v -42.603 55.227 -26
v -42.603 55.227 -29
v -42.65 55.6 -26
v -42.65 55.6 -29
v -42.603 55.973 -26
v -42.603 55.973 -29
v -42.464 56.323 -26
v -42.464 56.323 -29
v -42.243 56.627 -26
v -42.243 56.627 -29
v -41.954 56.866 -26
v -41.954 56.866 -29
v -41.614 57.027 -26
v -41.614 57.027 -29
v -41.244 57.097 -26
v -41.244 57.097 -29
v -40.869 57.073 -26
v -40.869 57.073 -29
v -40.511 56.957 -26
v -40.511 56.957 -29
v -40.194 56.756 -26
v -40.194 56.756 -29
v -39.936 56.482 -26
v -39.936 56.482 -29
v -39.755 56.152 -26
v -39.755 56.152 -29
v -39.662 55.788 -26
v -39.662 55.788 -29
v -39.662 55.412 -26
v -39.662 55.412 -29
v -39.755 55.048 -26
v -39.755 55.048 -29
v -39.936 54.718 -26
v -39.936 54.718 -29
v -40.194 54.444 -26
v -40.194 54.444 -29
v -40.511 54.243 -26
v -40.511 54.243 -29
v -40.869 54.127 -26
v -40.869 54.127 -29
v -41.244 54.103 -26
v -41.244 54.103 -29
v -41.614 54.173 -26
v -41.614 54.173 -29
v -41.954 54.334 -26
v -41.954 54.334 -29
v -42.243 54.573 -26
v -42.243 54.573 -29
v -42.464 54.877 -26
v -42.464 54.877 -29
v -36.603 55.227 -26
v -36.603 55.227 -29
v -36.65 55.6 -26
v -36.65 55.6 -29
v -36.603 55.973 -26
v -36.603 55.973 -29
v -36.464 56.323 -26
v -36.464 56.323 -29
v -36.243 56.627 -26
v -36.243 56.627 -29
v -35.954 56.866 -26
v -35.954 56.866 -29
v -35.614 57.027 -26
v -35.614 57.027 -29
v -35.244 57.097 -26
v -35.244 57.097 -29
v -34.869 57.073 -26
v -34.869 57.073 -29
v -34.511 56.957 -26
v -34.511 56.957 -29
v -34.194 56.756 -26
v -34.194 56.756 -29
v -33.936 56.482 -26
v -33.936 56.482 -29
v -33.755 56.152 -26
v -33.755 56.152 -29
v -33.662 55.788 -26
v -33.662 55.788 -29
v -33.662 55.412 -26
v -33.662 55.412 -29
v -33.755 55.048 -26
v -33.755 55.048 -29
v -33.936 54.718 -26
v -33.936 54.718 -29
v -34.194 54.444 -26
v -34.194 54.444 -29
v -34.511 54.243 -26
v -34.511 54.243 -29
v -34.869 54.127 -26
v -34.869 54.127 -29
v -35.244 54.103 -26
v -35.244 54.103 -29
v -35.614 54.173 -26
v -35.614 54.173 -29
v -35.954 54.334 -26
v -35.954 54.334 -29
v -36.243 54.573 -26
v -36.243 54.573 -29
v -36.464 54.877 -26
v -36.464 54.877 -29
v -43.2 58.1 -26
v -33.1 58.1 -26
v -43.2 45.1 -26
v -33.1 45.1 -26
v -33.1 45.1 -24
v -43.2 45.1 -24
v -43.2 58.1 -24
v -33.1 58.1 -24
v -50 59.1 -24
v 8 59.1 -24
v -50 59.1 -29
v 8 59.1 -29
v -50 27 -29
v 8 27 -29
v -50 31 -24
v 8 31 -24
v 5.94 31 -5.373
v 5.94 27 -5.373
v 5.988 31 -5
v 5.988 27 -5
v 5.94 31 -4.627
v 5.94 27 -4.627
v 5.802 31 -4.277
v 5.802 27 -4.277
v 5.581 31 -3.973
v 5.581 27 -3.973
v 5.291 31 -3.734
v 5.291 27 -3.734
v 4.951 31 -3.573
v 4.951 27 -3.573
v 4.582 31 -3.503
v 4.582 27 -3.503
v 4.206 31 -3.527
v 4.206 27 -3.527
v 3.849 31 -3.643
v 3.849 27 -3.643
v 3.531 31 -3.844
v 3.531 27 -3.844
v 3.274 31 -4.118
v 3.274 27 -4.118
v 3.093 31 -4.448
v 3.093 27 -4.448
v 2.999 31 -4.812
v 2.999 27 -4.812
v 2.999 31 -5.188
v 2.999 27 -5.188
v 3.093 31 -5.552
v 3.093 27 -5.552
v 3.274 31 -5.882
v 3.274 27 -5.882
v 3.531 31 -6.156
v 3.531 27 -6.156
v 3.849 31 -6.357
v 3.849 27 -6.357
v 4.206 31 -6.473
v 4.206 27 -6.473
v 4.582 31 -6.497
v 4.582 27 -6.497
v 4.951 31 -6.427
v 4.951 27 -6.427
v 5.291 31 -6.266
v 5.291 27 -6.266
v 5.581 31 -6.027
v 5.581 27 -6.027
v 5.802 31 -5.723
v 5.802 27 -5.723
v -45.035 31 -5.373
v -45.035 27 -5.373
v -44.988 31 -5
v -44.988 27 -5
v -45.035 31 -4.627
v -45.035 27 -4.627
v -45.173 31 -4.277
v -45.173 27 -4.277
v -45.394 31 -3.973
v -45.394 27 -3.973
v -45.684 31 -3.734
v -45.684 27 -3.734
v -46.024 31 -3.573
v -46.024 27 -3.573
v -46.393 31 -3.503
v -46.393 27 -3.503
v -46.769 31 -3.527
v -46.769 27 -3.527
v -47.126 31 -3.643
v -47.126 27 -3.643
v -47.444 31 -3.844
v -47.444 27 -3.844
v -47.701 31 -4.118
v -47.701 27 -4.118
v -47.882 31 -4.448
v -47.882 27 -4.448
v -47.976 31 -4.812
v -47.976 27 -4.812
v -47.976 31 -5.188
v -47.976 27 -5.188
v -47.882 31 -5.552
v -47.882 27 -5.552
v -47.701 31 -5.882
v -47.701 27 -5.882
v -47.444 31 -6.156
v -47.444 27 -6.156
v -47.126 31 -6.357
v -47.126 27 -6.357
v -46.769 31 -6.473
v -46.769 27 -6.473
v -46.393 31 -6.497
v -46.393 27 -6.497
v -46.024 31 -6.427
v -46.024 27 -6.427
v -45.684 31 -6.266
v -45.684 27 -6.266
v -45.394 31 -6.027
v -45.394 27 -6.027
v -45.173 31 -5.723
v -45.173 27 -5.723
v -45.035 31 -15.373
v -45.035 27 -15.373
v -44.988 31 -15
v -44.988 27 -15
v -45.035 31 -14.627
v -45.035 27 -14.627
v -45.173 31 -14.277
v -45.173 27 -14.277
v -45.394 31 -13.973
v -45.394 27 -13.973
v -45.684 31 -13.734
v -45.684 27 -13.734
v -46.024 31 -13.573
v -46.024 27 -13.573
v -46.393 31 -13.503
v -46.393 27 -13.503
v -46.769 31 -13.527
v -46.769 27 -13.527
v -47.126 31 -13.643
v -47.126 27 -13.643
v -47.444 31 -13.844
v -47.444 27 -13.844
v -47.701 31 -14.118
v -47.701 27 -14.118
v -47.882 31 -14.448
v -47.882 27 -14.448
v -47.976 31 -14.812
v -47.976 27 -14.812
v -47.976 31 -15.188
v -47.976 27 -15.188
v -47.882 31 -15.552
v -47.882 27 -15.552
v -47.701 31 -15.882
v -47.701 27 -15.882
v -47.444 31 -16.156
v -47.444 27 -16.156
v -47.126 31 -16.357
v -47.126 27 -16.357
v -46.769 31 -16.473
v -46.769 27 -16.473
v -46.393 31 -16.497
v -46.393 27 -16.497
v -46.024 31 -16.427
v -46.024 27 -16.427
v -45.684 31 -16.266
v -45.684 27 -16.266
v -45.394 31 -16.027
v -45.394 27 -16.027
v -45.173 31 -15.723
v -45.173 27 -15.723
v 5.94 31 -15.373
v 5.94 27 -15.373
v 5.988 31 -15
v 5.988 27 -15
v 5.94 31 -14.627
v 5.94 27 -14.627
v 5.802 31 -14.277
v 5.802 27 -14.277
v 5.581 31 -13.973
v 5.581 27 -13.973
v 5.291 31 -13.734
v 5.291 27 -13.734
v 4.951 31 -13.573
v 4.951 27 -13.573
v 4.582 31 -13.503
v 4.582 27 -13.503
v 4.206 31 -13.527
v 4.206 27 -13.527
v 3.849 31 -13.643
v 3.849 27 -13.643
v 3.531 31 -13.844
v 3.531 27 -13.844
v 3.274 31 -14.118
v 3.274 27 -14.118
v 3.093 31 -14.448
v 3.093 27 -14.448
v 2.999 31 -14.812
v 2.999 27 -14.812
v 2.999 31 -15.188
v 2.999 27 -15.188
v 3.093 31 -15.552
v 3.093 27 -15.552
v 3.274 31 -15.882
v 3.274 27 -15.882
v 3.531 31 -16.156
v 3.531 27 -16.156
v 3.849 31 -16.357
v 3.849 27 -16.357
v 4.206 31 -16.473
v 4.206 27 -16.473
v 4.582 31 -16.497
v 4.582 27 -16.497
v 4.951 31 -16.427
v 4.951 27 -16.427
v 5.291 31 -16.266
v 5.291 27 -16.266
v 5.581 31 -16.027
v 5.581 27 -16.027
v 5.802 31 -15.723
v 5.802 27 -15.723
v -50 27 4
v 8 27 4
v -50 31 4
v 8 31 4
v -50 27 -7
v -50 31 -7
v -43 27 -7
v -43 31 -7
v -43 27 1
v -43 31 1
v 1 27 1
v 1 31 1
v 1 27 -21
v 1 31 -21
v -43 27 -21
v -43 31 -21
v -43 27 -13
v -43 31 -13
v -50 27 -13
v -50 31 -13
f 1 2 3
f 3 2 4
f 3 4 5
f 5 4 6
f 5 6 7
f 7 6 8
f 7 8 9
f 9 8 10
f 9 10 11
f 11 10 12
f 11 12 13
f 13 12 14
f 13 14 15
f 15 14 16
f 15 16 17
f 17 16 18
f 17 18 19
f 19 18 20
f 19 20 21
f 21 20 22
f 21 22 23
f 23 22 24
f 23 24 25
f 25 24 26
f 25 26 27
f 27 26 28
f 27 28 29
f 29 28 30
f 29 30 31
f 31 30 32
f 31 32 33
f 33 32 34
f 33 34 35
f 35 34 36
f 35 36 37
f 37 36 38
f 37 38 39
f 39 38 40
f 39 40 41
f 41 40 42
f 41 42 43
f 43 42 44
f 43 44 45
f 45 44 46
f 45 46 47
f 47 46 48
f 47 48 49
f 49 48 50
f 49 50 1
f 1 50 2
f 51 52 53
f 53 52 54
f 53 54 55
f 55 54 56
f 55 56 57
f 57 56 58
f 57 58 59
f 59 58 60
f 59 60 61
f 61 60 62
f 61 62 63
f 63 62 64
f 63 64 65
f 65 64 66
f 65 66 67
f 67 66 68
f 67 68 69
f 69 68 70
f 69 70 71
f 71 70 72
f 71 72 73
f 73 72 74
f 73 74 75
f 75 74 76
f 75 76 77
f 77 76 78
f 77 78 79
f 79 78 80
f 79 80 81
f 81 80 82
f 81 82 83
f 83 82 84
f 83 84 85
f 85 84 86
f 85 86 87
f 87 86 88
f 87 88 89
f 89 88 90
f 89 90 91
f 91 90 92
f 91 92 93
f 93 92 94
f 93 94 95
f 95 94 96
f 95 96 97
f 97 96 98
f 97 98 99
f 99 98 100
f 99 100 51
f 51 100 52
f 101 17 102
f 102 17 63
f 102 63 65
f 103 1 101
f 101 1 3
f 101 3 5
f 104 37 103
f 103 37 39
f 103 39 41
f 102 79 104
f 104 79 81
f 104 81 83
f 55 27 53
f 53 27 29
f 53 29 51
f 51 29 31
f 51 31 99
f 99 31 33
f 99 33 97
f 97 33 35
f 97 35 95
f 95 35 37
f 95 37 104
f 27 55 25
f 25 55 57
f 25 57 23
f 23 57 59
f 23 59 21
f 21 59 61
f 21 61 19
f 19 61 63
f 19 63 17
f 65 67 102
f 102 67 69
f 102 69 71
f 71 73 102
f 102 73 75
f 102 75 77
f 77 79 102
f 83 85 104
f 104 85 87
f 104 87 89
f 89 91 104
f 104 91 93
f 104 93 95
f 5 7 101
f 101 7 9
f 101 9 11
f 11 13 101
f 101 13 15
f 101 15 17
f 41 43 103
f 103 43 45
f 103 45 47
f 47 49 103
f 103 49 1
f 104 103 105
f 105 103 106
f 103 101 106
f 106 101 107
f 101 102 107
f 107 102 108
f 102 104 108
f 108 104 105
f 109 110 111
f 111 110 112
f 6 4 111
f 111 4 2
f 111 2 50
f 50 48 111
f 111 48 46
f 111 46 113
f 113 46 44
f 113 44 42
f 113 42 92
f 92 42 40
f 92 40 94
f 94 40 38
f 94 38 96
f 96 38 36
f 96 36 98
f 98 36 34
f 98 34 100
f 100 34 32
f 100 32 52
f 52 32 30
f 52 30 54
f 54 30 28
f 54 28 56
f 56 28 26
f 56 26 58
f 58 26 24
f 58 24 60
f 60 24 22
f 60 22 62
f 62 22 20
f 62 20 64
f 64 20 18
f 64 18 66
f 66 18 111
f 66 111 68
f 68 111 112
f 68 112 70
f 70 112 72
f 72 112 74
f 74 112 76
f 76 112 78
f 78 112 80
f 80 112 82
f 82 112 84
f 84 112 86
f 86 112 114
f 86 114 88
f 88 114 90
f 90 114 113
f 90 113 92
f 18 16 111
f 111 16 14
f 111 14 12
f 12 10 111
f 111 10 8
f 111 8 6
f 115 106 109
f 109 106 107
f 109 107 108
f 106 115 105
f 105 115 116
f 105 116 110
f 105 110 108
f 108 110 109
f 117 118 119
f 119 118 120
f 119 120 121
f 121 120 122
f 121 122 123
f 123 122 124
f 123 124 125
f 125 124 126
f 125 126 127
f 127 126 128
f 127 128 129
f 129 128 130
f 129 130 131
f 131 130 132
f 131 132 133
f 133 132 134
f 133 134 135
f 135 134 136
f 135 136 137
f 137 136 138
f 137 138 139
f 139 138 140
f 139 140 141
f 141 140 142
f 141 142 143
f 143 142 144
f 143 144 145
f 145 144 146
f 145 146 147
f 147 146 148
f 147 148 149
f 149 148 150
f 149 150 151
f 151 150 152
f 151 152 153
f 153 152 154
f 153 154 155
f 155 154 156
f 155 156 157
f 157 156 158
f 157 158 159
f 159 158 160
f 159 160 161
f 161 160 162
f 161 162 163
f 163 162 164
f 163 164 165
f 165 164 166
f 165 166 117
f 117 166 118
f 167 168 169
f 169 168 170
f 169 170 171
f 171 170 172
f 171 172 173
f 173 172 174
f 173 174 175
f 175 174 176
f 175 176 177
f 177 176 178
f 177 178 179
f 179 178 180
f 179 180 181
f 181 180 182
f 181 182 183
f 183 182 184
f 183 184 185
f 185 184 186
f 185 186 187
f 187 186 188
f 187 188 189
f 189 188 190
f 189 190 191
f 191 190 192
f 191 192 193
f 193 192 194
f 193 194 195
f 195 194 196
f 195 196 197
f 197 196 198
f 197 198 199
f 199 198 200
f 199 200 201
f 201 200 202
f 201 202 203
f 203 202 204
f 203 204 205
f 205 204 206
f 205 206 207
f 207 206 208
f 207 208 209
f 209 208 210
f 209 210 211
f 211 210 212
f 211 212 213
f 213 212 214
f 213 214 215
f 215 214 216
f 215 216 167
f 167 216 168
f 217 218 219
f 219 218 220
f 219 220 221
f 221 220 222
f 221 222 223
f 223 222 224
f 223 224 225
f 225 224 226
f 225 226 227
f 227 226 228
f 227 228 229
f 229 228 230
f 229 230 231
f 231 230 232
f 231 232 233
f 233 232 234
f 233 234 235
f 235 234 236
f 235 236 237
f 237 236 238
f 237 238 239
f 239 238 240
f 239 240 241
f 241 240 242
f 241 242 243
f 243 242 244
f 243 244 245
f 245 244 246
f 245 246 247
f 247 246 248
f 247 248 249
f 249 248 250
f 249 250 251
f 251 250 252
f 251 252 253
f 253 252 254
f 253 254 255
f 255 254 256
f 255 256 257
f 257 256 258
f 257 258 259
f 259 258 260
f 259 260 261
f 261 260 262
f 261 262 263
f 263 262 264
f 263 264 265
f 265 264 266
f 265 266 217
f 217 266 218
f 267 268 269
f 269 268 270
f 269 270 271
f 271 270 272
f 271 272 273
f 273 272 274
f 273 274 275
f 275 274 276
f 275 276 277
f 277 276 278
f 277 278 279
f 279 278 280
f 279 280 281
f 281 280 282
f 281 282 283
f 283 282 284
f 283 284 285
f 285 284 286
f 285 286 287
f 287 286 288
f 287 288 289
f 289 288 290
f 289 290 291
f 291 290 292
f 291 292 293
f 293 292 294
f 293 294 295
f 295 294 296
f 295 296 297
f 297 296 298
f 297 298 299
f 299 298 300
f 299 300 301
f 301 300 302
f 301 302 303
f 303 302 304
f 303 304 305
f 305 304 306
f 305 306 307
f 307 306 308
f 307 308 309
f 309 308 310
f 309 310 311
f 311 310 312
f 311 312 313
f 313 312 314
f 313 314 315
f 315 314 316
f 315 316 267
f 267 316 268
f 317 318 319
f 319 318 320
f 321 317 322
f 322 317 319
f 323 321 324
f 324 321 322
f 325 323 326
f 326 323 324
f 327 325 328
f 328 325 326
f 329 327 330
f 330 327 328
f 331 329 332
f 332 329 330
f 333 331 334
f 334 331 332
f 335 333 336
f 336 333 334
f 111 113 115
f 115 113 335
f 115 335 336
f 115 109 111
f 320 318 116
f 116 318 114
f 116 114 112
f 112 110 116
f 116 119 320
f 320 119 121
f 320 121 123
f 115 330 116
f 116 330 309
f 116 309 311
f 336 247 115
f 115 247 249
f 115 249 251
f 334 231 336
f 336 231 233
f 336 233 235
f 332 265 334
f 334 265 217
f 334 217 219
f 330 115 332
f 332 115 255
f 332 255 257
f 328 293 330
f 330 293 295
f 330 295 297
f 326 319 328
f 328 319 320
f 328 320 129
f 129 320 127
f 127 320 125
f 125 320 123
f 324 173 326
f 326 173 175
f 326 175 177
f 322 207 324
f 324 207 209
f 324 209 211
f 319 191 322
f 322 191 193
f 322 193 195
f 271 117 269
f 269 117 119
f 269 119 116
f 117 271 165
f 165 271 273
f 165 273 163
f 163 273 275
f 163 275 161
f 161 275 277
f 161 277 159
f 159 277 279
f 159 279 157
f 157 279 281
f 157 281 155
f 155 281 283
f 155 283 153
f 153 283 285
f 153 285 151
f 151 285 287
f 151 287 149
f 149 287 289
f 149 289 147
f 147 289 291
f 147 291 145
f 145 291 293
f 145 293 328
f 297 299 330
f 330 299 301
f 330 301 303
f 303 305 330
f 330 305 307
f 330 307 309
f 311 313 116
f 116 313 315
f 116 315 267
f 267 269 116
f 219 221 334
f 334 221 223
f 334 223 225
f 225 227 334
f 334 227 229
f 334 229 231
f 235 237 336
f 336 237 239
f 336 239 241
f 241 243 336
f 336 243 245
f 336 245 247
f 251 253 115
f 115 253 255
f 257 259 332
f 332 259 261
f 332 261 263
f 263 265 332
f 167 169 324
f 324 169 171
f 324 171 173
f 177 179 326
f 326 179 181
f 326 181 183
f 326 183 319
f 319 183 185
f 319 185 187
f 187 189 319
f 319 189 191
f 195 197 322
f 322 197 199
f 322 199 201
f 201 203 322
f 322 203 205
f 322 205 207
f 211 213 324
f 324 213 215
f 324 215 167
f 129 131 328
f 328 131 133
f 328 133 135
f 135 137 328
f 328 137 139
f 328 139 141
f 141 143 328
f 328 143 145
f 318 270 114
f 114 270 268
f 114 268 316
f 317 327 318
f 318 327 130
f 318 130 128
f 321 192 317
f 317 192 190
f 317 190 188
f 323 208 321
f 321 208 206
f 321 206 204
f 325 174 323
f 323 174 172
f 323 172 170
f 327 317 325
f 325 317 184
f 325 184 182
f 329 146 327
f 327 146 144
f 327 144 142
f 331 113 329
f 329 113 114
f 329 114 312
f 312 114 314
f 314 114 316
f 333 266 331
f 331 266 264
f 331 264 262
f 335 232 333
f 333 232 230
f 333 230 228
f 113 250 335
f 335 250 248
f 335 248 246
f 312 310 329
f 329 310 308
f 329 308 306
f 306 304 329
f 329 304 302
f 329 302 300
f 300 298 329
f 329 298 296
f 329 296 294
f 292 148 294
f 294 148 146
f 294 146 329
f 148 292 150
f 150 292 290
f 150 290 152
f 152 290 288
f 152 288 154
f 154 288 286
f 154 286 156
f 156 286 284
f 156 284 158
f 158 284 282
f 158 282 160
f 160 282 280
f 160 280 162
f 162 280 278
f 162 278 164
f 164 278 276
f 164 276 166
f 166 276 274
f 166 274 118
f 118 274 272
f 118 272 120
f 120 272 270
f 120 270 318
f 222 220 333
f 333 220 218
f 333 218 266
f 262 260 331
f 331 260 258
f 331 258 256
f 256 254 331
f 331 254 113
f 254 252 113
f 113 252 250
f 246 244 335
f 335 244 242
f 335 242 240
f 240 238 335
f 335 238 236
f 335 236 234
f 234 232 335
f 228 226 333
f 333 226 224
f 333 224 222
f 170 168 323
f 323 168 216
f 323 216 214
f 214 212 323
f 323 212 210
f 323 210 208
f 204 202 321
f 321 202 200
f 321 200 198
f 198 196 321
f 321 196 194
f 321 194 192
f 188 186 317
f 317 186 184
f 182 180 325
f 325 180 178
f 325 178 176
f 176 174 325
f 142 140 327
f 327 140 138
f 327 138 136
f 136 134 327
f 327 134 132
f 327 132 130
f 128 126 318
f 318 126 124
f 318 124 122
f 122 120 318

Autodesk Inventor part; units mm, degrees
ref_plane "YZ Plane" through (0, 0, 0) normal (1, 0, 0) x (0, 1, 0)
ref_plane "XZ Plane" through (0, 0, 0) normal (0, 1, 0) x (-1, 0, 0)
ref_plane "XY Plane" through (0, 0, 0) normal (0, 0, 1) x (1, 0, 0)
ref_plane "Plano de trabajo1" through (0, 27, 0) normal (0, 1, 0) x (1, 0, 0)
sketch "Boceto2" plane through (0, 27, 0) normal (0, 1, 0) x (1, 0, 0)
  line L0 (0, 10) -> (0, 15)
  line L1 (0, 15) -> (11.8906, 15)
  line L2 (0, 10) -> (0, 5)
  line L3 (0, 5) -> (15.0689, 5)
  line L4 (0, 5) -> (7, 5)
  line L5 (7, 5) -> (7, 15)
  line L6 (6.4875, 15) -> (4.4875, 15)
  circle A0 centre (4.4875, 15) radius 1.5
  circle A1 centre (4.4875, 5) radius 1.5
  line L7 (-42, 6) -> (-42, 0) projected
  line L8 (0, 0) -> (-42, 0)
  line L9 (-42, 0) -> (0, 0) projected
  line L10 (-21, 0) -> (-21, 36.5425)
  circle A2 centre (-46.4875, 15) radius 1.5
  circle A3 centre (-46.4875, 5) radius 1.5
  line L11 (0, 0) -> (1, 0)
  line L12 (1, 0) -> (8, 0)
  line L13 (8, 0) -> (8, 20)
  line L14 (8, 20) -> (1, 20)
  line L15 (1, 20) -> (1, 0)
  line L16 (-42, 10) -> (-42, 15)
  line L17 (-42, 15) -> (-53.8906, 15)
  line L18 (-42, 10) -> (-42, 5)
  line L19 (-42, 5) -> (-49, 5)
  line L20 (-49, 5) -> (-49, 15)
  line L21 (-48.4875, 15) -> (-46.4875, 15)
  circle A4 centre (-46.4875, 15) radius 1.5
  circle A5 centre (-46.4875, 5) radius 1.5
  line L22 (-42, 0) -> (-43, 0)
  line L23 (-43, 0) -> (-50, 0)
  line L24 (-50, 0) -> (-50, 20)
  line L25 (-50, 20) -> (-43, 20)
  line L26 (-43, 20) -> (-43, 0)
  line L27 (-43, 20) -> (-43, 21)
  line L28 (-43, 21) -> (1, 21)
  line L29 (1, 21) -> (1, 20)
  line L30 (-43, 0) -> (-43, -1)
  line L31 (-43, -1) -> (1, -1)
  line L32 (1, -1) -> (1, 0)
  line L33 (-50, 20) -> (-50, 24)
  line L34 (-50, 24) -> (8, 24)
  line L35 (-50, 0) -> (-50, -4)
  line L36 (-50, -4) -> (8, -4)
  line L37 (8, -4) -> (8, 0)
  line L38 (8, 24) -> (8, 19.2948)
  line L39 (-42, 10) -> (-42, 7)
  line L40 (-42, 7) -> (-58.0956, 7)
  line L41 (-51, 14) -> (-51, 6) projected
  line L42 (-42, 10) -> (-42, 13)
  line L43 (-42, 13) -> (-56.402, 13)
  point P0 (0, 20)
  point P1 (-42, 20)
  point P2 (-50, 13)
  point P3 (-43, 13)
  point P4 (-43, 7)
  point P5 (-50, 7)
  dimension "d8" = 5
  dimension "d9" = 5
  dimension "d10" = 7
  dimension "d11" = 2
  dimension "d12" = 3
  dimension "d13" = 3
  dimension "d14" = 1
  dimension "d15" = 7
  dimension "d16" = 1
  dimension "d17" = 1
  dimension "d18" = 4
  dimension "d19" = 4
  dimension "d22" = 3
  dimension "d23" = 3
extrude "Extrusión2" add sketch "Boceto2" along normal blind 4 contours L15 L14 L13 L1 A0 | L1 A0 L5 L3 A1 L15 | L3 A1 L13 L12 L15 | L29 L28 L10 L34 L38 L14 | L12 L37 L36 L35 L23 L30 L31 L32 | L28 L27 L25 L33 L34 L10 | L5 L1 L13 L3 | L23 L24 L40 L20 L19 A3 L26 | L26 L17 A2 L24 L25 | L19 A3 L20 L40 L26 | L26 L43 L20 L17 A2 | L17 L20 L43 L24
sketch "Boceto3" plane through (8, 27, -24) normal (0, 0, -1) x (-1, 0, 0)
  point P0 (8, -27)
sketch "Boceto4" plane through (8, 27, -24) normal (0, 0, -1) x (-1, 0, 0)
  line L0 (0, 4) -> (58, 4) projected
  line L1 (58, 4) -> (58, 18.1)
  line L2 (58, 18.1) -> (0, 18.1)
  line L3 (0, 18.1) -> (0, 4)
  line L4 (58, 18.1) -> (58, 22.1)
  line L5 (58, 18.1) -> (58, 32.1)
  line L6 (58, 32.1) -> (0, 32.1)
  line L7 (0, 32.1) -> (0, 18.1)
  line L8 (58, 18.1) -> (58, 28.6)
  line L9 (58, 28.6) -> (36.9156, 28.6)
  line L10 (8, -6.3468) -> (8, 18.1)
  line L11 (8, 18.1) -> (18.1, 18.1)
  line L12 (18.1, 18.1) -> (41.1, 18.1)
  line L13 (41.1, 18.1) -> (51.1, 18.1)
  line L14 (51.1, 18.1) -> (51.1, 26.6579)
  line L15 (51.1, 26.6579) -> (51.1, 31.1823)
  line L16 (51.1, 18.1) -> (51.1, 18)
  line L17 (51.1, 18.1) -> (51.2, 18.1)
  line L18 (51.2, 18.1) -> (51.2, 31.1)
  line L19 (51.2, 31.1) -> (41.1, 31.1)
  line L20 (41.1, 31.1) -> (41.1, 18.1)
  line L21 (51.2, 28.6) -> (49.2, 28.6)
  line L22 (41.1, 28.6) -> (43.1, 28.6)
  line L23 (43.1, 28.6) -> (43.15, 28.6)
  circle A0 centre (43.15, 28.6) radius 1.5
  line L24 (43.15, 28.6) -> (49.15, 28.6)
  circle A1 centre (49.15, 28.6) radius 1.5
  point P0 (8, -27)
  point P1 (8, 4)
  dimension "d24" = 14.1
  dimension "d25" = 4
  dimension "d26" = 14
  dimension "d27" = 10.5
  dimension "d28" = 10.1
  dimension "d29" = 23
  dimension "d30" = 10
  dimension "d31" = 0.1
  dimension "d32" = 0.1
  dimension "d33" = 13
  dimension "d34" = 10.1
  dimension "d35" = 2
  dimension "d36" = 2
  dimension "d38" = 0.05
  dimension "d39" = 3
  dimension "d40" = 6
  dimension "d41" = 3
extrude "Extrusión3" add sketch "Boceto4" along normal blind 5 contours L3 L2 L10 L0 | L10 L2 L1 L0 | L7 L6 L5 L9 L18 L19 L20 L2 | L2 L18 L9 L5 L4
sketch "Boceto5" plane through (8, 27, -29) normal (0, 0, -1) x (-1, 0, 0)
  line L0 (51.2, 18.1) -> (41.1, 18.1) projected
  line L1 (51.2, 18.1) -> (51.2, 28.6)
  line L2 (51.2, 31.1) -> (51.2, 18.1) projected
  line L3 (51.2, 28.6) -> (49.15, 28.6)
  circle A0 centre (49.15, 28.6) radius 1.5
  line L4 (49.15, 28.6) -> (43.15, 28.6)
  circle A1 centre (43.15, 28.6) radius 1.5
  line L5 (41.1, 18.1) -> (51.2, 18.1)
  line L6 (51.2, 18.1) -> (51.2, 31.1)
  line L7 (51.2, 31.1) -> (41.1, 31.1)
  line L8 (41.1, 31.1) -> (41.1, 18.1)
  point P0 (8, -27)
  dimension "d44" = 10.5
  dimension "d45" = 2.05
  dimension "d46" = 3
  dimension "d47" = 6
  dimension "d48" = 3
extrude "Extrusión4" add sketch "Boceto5" against normal blind 3
sketch "Boceto6" plane through (-50, 31, -24) normal (0, -1, 0) x (1, 0, 0)
  line L0 (58, -5) -> (0, -5) projected
  line L1 (0, 0) -> (58, 0)
  line L2 (58, 0) -> (58, -5)
  line L3 (58, -5) -> (0, -5)
  line L4 (0, -5) -> (0, 0)
  point P0 (50, 24)
extrude "Extrusión5" add sketch "Boceto6" along normal blind 4
properties part number "servo pinza"
